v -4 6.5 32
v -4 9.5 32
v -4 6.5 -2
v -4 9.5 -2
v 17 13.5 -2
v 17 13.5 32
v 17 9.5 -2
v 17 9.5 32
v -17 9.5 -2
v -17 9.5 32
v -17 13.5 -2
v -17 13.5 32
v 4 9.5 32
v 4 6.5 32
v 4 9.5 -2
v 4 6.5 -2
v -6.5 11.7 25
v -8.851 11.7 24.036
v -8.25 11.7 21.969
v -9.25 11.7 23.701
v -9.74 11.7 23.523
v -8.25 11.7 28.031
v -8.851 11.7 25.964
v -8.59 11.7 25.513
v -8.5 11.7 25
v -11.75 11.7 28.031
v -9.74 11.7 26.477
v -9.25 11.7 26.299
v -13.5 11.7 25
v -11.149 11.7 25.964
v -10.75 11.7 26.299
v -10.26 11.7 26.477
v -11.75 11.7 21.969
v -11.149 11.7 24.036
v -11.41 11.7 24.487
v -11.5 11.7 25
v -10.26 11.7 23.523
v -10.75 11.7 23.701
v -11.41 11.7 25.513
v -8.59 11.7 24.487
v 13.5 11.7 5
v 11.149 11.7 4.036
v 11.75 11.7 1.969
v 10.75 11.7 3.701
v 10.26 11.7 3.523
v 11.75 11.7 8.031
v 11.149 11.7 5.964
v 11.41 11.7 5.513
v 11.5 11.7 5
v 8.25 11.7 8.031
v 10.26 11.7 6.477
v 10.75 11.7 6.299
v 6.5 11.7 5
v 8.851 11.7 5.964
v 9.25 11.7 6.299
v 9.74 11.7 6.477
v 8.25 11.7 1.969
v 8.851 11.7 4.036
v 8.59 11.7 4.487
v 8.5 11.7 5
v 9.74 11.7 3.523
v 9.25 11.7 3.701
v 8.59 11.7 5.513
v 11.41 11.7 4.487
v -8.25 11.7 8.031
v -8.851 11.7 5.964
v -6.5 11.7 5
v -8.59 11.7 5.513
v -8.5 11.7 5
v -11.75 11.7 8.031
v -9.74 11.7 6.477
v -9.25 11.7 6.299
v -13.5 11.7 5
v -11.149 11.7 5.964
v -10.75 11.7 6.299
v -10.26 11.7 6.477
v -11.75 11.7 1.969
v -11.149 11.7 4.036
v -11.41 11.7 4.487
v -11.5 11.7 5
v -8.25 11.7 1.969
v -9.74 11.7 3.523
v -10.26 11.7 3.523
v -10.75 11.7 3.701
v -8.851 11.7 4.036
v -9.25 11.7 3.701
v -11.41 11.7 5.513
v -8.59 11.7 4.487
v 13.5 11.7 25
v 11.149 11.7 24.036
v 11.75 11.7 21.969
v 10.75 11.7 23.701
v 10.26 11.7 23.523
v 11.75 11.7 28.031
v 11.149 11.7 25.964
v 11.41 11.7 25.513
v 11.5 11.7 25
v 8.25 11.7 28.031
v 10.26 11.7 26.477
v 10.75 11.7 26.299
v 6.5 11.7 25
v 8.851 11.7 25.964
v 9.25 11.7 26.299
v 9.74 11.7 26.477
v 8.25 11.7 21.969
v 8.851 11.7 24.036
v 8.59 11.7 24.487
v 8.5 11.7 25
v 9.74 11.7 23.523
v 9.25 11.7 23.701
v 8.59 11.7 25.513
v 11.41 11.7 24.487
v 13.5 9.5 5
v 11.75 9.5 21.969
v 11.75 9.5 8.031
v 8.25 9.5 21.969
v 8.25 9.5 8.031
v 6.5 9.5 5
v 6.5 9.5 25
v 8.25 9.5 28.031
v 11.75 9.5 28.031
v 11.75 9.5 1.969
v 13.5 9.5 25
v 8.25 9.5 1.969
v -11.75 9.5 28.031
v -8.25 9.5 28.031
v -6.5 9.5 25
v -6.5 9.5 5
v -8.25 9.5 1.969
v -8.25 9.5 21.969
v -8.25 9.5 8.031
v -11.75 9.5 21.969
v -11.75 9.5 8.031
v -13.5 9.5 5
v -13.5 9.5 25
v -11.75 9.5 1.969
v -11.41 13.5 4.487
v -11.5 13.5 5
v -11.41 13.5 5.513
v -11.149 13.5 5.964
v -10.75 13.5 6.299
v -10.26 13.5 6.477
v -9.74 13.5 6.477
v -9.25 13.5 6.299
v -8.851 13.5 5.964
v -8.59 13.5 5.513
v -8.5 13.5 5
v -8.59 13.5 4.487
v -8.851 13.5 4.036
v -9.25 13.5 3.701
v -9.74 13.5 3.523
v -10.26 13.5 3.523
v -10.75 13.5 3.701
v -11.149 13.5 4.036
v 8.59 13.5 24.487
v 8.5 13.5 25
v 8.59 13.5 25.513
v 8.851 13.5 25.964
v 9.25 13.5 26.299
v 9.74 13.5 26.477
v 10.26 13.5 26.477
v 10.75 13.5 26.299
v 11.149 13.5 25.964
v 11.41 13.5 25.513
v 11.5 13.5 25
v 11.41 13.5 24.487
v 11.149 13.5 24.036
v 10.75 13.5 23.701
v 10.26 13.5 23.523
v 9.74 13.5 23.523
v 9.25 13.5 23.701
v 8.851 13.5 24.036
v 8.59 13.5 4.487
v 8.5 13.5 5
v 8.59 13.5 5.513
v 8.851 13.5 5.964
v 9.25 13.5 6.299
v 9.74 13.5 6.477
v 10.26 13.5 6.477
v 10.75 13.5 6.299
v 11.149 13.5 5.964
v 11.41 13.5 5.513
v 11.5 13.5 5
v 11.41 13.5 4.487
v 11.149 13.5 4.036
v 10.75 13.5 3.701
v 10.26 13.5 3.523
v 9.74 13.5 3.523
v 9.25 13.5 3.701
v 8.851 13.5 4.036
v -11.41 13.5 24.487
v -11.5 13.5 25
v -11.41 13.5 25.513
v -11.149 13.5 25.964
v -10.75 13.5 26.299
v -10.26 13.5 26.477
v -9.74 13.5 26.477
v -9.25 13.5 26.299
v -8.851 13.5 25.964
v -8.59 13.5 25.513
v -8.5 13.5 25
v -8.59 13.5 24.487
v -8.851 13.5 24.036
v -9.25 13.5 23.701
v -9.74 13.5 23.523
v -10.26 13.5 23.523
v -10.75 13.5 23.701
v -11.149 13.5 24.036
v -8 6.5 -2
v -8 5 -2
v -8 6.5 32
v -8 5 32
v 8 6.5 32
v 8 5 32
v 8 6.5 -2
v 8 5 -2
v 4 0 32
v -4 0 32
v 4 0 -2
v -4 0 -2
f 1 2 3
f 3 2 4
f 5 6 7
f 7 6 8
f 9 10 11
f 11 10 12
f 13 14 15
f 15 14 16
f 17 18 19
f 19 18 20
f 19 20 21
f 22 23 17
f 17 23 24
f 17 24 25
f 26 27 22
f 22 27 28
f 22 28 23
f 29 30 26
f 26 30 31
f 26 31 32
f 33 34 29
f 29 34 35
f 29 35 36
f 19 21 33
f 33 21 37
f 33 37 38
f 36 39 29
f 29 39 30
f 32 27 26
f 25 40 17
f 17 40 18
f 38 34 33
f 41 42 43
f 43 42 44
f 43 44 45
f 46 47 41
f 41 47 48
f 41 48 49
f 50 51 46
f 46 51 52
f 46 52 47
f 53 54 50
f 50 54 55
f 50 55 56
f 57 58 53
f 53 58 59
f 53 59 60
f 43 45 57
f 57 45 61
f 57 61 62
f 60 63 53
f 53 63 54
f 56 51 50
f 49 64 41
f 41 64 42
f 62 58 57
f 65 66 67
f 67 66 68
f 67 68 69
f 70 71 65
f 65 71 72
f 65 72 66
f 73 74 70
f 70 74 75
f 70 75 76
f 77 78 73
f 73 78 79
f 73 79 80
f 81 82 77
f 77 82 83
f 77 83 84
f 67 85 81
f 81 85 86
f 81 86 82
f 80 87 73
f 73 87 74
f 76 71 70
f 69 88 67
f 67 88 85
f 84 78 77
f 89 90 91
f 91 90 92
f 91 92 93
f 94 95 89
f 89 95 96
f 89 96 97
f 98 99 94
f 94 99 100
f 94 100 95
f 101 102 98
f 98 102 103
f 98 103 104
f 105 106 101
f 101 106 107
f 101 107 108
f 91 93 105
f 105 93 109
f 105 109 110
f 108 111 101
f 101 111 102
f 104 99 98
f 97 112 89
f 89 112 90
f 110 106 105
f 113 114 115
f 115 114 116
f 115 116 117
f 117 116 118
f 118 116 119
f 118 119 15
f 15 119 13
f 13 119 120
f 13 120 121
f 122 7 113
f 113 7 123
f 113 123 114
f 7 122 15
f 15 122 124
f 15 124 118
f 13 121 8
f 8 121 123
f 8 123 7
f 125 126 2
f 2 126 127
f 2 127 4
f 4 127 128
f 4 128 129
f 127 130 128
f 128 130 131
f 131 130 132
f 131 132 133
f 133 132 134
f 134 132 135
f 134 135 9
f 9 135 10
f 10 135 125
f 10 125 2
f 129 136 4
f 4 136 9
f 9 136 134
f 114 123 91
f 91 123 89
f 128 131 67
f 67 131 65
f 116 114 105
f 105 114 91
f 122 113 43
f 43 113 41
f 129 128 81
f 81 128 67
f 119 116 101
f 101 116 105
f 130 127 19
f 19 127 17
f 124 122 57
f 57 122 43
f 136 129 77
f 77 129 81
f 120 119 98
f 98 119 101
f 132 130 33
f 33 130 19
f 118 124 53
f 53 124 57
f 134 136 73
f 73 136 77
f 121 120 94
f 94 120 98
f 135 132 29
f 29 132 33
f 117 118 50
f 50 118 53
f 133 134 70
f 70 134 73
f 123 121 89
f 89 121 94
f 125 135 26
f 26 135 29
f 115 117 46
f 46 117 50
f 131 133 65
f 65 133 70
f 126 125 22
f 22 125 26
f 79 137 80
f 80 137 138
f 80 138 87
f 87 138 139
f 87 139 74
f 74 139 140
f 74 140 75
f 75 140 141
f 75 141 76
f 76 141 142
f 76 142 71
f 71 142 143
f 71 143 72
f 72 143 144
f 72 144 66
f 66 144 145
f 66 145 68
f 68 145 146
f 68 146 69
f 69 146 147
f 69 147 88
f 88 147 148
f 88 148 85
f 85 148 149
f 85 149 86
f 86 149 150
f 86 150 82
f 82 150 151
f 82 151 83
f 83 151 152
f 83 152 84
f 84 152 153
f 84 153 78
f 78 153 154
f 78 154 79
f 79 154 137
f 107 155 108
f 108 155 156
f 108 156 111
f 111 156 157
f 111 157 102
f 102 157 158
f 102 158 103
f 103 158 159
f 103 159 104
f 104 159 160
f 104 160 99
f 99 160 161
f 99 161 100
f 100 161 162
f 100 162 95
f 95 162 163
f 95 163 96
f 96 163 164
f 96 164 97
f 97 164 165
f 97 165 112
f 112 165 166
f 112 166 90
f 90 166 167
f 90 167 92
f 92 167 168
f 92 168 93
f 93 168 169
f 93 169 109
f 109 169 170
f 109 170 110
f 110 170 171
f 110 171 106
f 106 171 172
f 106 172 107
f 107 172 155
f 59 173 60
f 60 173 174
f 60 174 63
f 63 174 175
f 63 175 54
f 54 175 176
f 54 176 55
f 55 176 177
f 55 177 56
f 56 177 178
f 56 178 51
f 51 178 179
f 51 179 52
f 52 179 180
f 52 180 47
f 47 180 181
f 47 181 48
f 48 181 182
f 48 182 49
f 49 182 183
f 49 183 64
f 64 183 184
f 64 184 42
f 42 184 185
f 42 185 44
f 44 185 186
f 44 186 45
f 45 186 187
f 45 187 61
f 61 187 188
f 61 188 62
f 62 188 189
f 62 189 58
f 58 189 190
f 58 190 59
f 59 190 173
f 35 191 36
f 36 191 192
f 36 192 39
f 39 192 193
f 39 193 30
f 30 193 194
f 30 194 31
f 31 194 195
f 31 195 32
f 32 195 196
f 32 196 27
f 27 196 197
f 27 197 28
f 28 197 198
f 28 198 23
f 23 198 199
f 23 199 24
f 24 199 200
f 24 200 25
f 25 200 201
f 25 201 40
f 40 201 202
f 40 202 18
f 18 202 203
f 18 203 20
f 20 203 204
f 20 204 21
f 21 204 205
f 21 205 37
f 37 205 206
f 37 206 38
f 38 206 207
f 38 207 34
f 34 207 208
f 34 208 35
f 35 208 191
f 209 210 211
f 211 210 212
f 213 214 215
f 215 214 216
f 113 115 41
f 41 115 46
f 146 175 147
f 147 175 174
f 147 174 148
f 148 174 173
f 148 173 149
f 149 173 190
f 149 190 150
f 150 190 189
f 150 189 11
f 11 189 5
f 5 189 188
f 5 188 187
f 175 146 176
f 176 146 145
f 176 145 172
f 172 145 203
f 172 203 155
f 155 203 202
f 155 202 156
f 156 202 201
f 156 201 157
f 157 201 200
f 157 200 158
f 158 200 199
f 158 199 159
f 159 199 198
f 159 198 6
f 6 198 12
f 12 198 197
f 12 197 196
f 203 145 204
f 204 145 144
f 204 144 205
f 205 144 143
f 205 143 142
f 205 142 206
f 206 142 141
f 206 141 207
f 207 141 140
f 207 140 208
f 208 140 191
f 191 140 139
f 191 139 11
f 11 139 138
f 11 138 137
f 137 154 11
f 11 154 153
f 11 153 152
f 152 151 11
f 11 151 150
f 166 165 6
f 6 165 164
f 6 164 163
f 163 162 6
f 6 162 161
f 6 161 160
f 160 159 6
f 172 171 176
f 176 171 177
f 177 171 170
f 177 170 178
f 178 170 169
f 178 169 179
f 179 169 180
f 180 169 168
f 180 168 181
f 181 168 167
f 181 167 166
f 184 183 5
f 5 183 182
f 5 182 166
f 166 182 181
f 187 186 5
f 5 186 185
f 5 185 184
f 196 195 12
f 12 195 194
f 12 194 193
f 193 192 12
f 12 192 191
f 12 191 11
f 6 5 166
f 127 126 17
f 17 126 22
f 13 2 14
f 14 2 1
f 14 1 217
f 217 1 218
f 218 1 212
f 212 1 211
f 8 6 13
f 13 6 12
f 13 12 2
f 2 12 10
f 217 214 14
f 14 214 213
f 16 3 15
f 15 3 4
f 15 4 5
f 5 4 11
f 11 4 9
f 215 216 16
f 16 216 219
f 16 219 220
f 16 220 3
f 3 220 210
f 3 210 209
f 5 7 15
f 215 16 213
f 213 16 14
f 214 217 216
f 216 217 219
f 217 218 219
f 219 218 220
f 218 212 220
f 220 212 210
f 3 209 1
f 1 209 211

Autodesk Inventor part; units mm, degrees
sketch "Sketch1" plane through (0, 0, 0) normal (0, 0, 1) x (1, 0, 0)
  line L0 (0, 0) -> (4, 0)
  line L1 (0, 0) -> (-4, 0)
  line L2 (-4, 7) -> (-4, 9.5)
  line L3 (4, 7) -> (4, 9.5)
  line L4 (-4, 7) -> (-8, 7)
  line L5 (4, 7) -> (8, 7)
  line L6 (-8, 7) -> (-8, 5)
  line L7 (8, 7) -> (8, 5)
  line L8 (8, 5) -> (4, 0)
  line L9 (-8, 5) -> (-4, 0)
  line L10 (-4, 9.5) -> (-15, 9.5)
  line L11 (4, 9.5) -> (15, 9.5)
  line L12 (-15, 9.5) -> (-15, 13.5)
  line L13 (-15, 13.5) -> (15, 13.5)
  line L14 (15, 13.5) -> (15, 9.5)
  dimension "d12" = 4
extrude "Extrusion1" add sketch "Sketch1" along normal blind 30
sketch "Sketch2" plane through (-15, 13.5, 0) normal (0, 1, 0) x (1, 0, 0)
  line L0 (0, -30) -> (11, -30) projected
  line L1 (30, 0) -> (30, -30) projected
  line L2 (30, 0) -> (0, 0) projected
  circle A0 centre (5, -5) radius 1.5
  circle A1 centre (5, -25) radius 1.5
  circle A2 centre (25, -25) radius 1.5
  circle A3 centre (25, -5) radius 1.5
  point P0 (15, 0)
  point P1 (15, -15)
  dimension "d19" = 360
extrude "Extrusion2" cut sketch "Sketch2" against normal blind 5
sketch "Sketch3" plane through (-15, 9.5, 0) normal (0, -1, 0) x (1, 0, 0)
  line L0 (3.5, 7.5981) -> (6.5, 7.5981)
  line L1 (6.5, 7.5981) -> (8, 5)
  line L2 (8, 5) -> (6.5, 2.4019)
  line L3 (6.5, 2.4019) -> (3.5, 2.4019)
  line L4 (3.5, 2.4019) -> (2, 5)
  line L5 (2, 5) -> (3.5, 7.5981)
  line L6 (3.5, 27.5981) -> (6.5, 27.5981)
  line L7 (6.5, 27.5981) -> (8, 25)
  line L8 (8, 25) -> (6.5, 22.4019)
  line L9 (6.5, 22.4019) -> (3.5, 22.4019)
  line L10 (3.5, 22.4019) -> (2, 25)
  line L11 (2, 25) -> (3.5, 27.5981)
  line L12 (23.5, 7.5981) -> (26.5, 7.5981)
  line L13 (26.5, 7.5981) -> (28, 5)
  line L14 (28, 5) -> (26.5, 2.4019)
  line L15 (26.5, 2.4019) -> (23.5, 2.4019)
  line L16 (23.5, 2.4019) -> (22, 5)
  line L17 (22, 5) -> (23.5, 7.5981)
  line L18 (23.5, 27.5981) -> (26.5, 27.5981)
  line L19 (26.5, 27.5981) -> (28, 25)
  line L20 (28, 25) -> (26.5, 22.4019)
  line L21 (26.5, 22.4019) -> (23.5, 22.4019)
  line L22 (23.5, 22.4019) -> (22, 25)
  line L23 (22, 25) -> (23.5, 27.5981)
  point P0 (15, 0)
  dimension "d23" = 3
  dimension "d24" = 3
  dimension "d26" = 3
  dimension "d27" = 120
  dimension "d28" = 3
  dimension "d29" = 120
  dimension "d30" = 3
  dimension "d31" = 3
  dimension "d32" = 120
  dimension "d33" = 3
  dimension "d34" = 120
  dimension "d35" = 3
  dimension "d36" = 120
  dimension "d37" = 3
  dimension "d38" = 3
  dimension "d40" = 3
  dimension "d41" = 120
  dimension "d42" = 3
  dimension "d43" = 120
  dimension "d44" = 3
  dimension "d45" = 3
  dimension "d46" = 120
  dimension "d47" = 3
  dimension "d48" = 120
  dimension "d49" = 3
  dimension "d50" = 120
extrude "Extrusion3" cut sketch "Sketch3" against normal blind 2.2
sketch "Sketch4" plane through (0, 0, 30) normal (0, 0, 1) x (1, 0, 0)
  line L0 (-8, 7) -> (-8, 5) projected
  line L1 (-8, 5) -> (-4, 0) projected
  line L2 (-4, 0) -> (4, 0) projected
  line L3 (4, 0) -> (8, 5) projected
  line L4 (8, 5) -> (8, 7) projected
  line L5 (8, 7) -> (4, 7) projected
  line L6 (4, 7) -> (4, 9.5) projected
  line L7 (4, 9.5) -> (15, 9.5) projected
  line L8 (15, 9.5) -> (15, 13.5) projected
  line L9 (15, 13.5) -> (-15, 13.5) projected
  line L10 (-15, 13.5) -> (-15, 9.5) projected
  line L11 (-15, 9.5) -> (-4, 9.5) projected
  line L12 (-4, 9.5) -> (-4, 7) projected
  line L13 (-4, 7) -> (-8, 7) projected
  line L14 (-8, 7) -> (-8, 5) projected
  line L15 (-8, 5) -> (-4, 0) projected
  line L16 (-4, 0) -> (4, 0) projected
  line L17 (4, 0) -> (8, 5) projected
  line L18 (8, 5) -> (8, 7) projected
  line L19 (8, 7) -> (4, 7) projected
  line L20 (4, 7) -> (4, 9.5) projected
  line L21 (4, 9.5) -> (15, 9.5) projected
  line L22 (15, 9.5) -> (15, 13.5) projected
  line L23 (15, 13.5) -> (-15, 13.5) projected
  line L24 (-15, 13.5) -> (-15, 9.5) projected
  line L25 (-15, 9.5) -> (-4, 9.5) projected
  line L26 (-4, 9.5) -> (-4, 7) projected
  line L27 (-4, 7) -> (-8, 7) projected
extrude "Extrusion4" add sketch "Sketch4" along normal blind 2
sketch "Sketch5" plane through (-15, 9.5, 0) normal (-1, 0, 0) x (0, 0, 1)
  line L0 (0, 4) -> (0, 0) projected
  line L1 (0, 0) -> (32, 0) projected
  line L2 (32, 4) -> (32, 0) projected
  line L3 (0, 4) -> (32, 4) projected
  point P0 (0, -9.5)
extrude "Extrusion5" add sketch "Sketch5" along normal blind 2
sketch "Sketch6" plane through (15, 9.5, 0) normal (1, 0, 0) x (0, 0, -1)
  line L0 (0, 0) -> (0, 4) projected
  line L1 (0, 4) -> (-32, 4) projected
  line L2 (-32, 0) -> (-32, 4) projected
  line L3 (0, 0) -> (-32, 0) projected
  point P0 (0, -9.5)
extrude "Extrusion6" add sketch "Sketch6" along normal blind 2
sketch "Sketch7" plane through (0, 0, 0) normal (0, 0, -1) x (-1, 0, 0)
  line L0 (8, 7) -> (8, 5) projected
  line L1 (4, 7) -> (8, 7) projected
  line L2 (4, 9.5) -> (4, 7) projected
  line L3 (4, 9.5) -> (17, 9.5) projected
  line L4 (17, 13.5) -> (17, 9.5) projected
  line L5 (17, 13.5) -> (-17, 13.5) projected
  line L6 (-17, 9.5) -> (-17, 13.5) projected
  line L7 (-4, 9.5) -> (-17, 9.5) projected
  line L8 (-4, 7) -> (-4, 9.5) projected
  line L9 (-8, 7) -> (-4, 7) projected
  line L10 (-8, 5) -> (-8, 7) projected
  line L11 (-4, 0) -> (-8, 5) projected
  line L12 (4, 0) -> (-4, 0) projected
  line L13 (8, 5) -> (4, 0) projected
  point P0 (0, 0)
extrude "Extrusion7" add sketch "Sketch7" along normal blind 2
sketch "Sketch8" plane through (0, 0, 32) normal (0, 0, 1) x (1, 0, 0)
  line L0 (-4, 7) -> (-8, 7) projected
  line L1 (-4, 7) -> (-4, 6.5)
  line L2 (-4, 6.5) -> (-8, 6.5)
  line L3 (-8, 7) -> (-8, 5) projected
  line L4 (-8, 7) -> (-4, 7)
  line L5 (3.9883, 6.9999) -> (3.9883, 6.4999)
  line L6 (3.9883, 6.4999) -> (8, 6.4999)
  line L7 (8, 5) -> (8, 7) projected
  line L8 (8, 6.4999) -> (8, 7)
  line L9 (8, 7) -> (4, 7) projected
  line L10 (8, 7) -> (4, 7)
  point P0 (0, 0)
  dimension "d61" = 0.5
extrude "Extrusion8" cut sketch "Sketch8" against normal blind 40
sketch "Sketch9" plane through (0, 0, 32) normal (0, 0, 1) x (1, 0, 0)
  line L0 (4, 7) -> (4, 9.5) projected
  line L1 (4, 7) -> (4, 6.5)
  line L2 (4, 6.5) -> (8, 6.5)
  line L3 (8, 7) -> (8, 5) projected
  line L4 (4, 7) -> (8, 7) projected
  line L5 (8, 7) -> (4, 7)
  point P0 (0, 0)
  dimension "d64" = 0.5
extrude "Extrusion9" cut sketch "Sketch9" against normal blind 40
sketch "Sketch10" plane through (-17, 9.5, 32) normal (0, -1, 0) x (1, 0, 0)
  line L0 (5.5, -24.4019) -> (8.5, -24.4019) projected
  line L1 (5.25, -30.0311) -> (3.5, -27)
  line L2 (5.25, -23.9689) -> (3.5, -27)
  line L3 (5.25, -23.9689) -> (8.75, -23.9689)
  line L4 (5.25, -30.0311) -> (8.75, -30.0311)
  line L5 (8.75, -30.0311) -> (10.5, -27)
  line L6 (10.5, -27) -> (8.75, -23.9689)
  line L7 (5.5, -9.5981) -> (4, -7) projected
  line L8 (30, -27) -> (28.5, -29.5981) projected
  line L9 (25.5, -4.4019) -> (28.5, -4.4019) projected
  line L10 (8.5, -9.5981) -> (5.5, -9.5981) projected
  line L11 (5.25, -10.0311) -> (3.5, -7)
  line L12 (5.25, -3.9689) -> (3.5, -7)
  line L13 (5.25, -3.9689) -> (8.75, -3.9689)
  line L14 (5.25, -10.0311) -> (8.75, -10.0311)
  line L15 (8.75, -10.0311) -> (10.5, -7)
  line L16 (10.5, -7) -> (8.75, -3.9689)
  line L17 (25.25, -10.0311) -> (23.5, -7)
  line L18 (25.25, -3.9689) -> (23.5, -7)
  line L19 (25.25, -3.9689) -> (28.75, -3.9689)
  line L20 (25.25, -10.0311) -> (28.75, -10.0311)
  line L21 (28.75, -10.0311) -> (30.5, -7)
  line L22 (30.5, -7) -> (28.75, -3.9689)
  line L23 (25.25, -30.0311) -> (23.5, -27)
  line L24 (25.25, -23.9689) -> (23.5, -27)
  line L25 (25.25, -23.9689) -> (28.75, -23.9689)
  line L26 (25.25, -30.0311) -> (28.75, -30.0311)
  line L27 (28.75, -30.0311) -> (30.5, -27)
  line L28 (30.5, -27) -> (28.75, -23.9689)
  point P0 (17, -32)
extrude "Extrusion10" cut sketch "Sketch10" against normal blind 2.2
properties part number "IDOM_infrared_fixture1"
